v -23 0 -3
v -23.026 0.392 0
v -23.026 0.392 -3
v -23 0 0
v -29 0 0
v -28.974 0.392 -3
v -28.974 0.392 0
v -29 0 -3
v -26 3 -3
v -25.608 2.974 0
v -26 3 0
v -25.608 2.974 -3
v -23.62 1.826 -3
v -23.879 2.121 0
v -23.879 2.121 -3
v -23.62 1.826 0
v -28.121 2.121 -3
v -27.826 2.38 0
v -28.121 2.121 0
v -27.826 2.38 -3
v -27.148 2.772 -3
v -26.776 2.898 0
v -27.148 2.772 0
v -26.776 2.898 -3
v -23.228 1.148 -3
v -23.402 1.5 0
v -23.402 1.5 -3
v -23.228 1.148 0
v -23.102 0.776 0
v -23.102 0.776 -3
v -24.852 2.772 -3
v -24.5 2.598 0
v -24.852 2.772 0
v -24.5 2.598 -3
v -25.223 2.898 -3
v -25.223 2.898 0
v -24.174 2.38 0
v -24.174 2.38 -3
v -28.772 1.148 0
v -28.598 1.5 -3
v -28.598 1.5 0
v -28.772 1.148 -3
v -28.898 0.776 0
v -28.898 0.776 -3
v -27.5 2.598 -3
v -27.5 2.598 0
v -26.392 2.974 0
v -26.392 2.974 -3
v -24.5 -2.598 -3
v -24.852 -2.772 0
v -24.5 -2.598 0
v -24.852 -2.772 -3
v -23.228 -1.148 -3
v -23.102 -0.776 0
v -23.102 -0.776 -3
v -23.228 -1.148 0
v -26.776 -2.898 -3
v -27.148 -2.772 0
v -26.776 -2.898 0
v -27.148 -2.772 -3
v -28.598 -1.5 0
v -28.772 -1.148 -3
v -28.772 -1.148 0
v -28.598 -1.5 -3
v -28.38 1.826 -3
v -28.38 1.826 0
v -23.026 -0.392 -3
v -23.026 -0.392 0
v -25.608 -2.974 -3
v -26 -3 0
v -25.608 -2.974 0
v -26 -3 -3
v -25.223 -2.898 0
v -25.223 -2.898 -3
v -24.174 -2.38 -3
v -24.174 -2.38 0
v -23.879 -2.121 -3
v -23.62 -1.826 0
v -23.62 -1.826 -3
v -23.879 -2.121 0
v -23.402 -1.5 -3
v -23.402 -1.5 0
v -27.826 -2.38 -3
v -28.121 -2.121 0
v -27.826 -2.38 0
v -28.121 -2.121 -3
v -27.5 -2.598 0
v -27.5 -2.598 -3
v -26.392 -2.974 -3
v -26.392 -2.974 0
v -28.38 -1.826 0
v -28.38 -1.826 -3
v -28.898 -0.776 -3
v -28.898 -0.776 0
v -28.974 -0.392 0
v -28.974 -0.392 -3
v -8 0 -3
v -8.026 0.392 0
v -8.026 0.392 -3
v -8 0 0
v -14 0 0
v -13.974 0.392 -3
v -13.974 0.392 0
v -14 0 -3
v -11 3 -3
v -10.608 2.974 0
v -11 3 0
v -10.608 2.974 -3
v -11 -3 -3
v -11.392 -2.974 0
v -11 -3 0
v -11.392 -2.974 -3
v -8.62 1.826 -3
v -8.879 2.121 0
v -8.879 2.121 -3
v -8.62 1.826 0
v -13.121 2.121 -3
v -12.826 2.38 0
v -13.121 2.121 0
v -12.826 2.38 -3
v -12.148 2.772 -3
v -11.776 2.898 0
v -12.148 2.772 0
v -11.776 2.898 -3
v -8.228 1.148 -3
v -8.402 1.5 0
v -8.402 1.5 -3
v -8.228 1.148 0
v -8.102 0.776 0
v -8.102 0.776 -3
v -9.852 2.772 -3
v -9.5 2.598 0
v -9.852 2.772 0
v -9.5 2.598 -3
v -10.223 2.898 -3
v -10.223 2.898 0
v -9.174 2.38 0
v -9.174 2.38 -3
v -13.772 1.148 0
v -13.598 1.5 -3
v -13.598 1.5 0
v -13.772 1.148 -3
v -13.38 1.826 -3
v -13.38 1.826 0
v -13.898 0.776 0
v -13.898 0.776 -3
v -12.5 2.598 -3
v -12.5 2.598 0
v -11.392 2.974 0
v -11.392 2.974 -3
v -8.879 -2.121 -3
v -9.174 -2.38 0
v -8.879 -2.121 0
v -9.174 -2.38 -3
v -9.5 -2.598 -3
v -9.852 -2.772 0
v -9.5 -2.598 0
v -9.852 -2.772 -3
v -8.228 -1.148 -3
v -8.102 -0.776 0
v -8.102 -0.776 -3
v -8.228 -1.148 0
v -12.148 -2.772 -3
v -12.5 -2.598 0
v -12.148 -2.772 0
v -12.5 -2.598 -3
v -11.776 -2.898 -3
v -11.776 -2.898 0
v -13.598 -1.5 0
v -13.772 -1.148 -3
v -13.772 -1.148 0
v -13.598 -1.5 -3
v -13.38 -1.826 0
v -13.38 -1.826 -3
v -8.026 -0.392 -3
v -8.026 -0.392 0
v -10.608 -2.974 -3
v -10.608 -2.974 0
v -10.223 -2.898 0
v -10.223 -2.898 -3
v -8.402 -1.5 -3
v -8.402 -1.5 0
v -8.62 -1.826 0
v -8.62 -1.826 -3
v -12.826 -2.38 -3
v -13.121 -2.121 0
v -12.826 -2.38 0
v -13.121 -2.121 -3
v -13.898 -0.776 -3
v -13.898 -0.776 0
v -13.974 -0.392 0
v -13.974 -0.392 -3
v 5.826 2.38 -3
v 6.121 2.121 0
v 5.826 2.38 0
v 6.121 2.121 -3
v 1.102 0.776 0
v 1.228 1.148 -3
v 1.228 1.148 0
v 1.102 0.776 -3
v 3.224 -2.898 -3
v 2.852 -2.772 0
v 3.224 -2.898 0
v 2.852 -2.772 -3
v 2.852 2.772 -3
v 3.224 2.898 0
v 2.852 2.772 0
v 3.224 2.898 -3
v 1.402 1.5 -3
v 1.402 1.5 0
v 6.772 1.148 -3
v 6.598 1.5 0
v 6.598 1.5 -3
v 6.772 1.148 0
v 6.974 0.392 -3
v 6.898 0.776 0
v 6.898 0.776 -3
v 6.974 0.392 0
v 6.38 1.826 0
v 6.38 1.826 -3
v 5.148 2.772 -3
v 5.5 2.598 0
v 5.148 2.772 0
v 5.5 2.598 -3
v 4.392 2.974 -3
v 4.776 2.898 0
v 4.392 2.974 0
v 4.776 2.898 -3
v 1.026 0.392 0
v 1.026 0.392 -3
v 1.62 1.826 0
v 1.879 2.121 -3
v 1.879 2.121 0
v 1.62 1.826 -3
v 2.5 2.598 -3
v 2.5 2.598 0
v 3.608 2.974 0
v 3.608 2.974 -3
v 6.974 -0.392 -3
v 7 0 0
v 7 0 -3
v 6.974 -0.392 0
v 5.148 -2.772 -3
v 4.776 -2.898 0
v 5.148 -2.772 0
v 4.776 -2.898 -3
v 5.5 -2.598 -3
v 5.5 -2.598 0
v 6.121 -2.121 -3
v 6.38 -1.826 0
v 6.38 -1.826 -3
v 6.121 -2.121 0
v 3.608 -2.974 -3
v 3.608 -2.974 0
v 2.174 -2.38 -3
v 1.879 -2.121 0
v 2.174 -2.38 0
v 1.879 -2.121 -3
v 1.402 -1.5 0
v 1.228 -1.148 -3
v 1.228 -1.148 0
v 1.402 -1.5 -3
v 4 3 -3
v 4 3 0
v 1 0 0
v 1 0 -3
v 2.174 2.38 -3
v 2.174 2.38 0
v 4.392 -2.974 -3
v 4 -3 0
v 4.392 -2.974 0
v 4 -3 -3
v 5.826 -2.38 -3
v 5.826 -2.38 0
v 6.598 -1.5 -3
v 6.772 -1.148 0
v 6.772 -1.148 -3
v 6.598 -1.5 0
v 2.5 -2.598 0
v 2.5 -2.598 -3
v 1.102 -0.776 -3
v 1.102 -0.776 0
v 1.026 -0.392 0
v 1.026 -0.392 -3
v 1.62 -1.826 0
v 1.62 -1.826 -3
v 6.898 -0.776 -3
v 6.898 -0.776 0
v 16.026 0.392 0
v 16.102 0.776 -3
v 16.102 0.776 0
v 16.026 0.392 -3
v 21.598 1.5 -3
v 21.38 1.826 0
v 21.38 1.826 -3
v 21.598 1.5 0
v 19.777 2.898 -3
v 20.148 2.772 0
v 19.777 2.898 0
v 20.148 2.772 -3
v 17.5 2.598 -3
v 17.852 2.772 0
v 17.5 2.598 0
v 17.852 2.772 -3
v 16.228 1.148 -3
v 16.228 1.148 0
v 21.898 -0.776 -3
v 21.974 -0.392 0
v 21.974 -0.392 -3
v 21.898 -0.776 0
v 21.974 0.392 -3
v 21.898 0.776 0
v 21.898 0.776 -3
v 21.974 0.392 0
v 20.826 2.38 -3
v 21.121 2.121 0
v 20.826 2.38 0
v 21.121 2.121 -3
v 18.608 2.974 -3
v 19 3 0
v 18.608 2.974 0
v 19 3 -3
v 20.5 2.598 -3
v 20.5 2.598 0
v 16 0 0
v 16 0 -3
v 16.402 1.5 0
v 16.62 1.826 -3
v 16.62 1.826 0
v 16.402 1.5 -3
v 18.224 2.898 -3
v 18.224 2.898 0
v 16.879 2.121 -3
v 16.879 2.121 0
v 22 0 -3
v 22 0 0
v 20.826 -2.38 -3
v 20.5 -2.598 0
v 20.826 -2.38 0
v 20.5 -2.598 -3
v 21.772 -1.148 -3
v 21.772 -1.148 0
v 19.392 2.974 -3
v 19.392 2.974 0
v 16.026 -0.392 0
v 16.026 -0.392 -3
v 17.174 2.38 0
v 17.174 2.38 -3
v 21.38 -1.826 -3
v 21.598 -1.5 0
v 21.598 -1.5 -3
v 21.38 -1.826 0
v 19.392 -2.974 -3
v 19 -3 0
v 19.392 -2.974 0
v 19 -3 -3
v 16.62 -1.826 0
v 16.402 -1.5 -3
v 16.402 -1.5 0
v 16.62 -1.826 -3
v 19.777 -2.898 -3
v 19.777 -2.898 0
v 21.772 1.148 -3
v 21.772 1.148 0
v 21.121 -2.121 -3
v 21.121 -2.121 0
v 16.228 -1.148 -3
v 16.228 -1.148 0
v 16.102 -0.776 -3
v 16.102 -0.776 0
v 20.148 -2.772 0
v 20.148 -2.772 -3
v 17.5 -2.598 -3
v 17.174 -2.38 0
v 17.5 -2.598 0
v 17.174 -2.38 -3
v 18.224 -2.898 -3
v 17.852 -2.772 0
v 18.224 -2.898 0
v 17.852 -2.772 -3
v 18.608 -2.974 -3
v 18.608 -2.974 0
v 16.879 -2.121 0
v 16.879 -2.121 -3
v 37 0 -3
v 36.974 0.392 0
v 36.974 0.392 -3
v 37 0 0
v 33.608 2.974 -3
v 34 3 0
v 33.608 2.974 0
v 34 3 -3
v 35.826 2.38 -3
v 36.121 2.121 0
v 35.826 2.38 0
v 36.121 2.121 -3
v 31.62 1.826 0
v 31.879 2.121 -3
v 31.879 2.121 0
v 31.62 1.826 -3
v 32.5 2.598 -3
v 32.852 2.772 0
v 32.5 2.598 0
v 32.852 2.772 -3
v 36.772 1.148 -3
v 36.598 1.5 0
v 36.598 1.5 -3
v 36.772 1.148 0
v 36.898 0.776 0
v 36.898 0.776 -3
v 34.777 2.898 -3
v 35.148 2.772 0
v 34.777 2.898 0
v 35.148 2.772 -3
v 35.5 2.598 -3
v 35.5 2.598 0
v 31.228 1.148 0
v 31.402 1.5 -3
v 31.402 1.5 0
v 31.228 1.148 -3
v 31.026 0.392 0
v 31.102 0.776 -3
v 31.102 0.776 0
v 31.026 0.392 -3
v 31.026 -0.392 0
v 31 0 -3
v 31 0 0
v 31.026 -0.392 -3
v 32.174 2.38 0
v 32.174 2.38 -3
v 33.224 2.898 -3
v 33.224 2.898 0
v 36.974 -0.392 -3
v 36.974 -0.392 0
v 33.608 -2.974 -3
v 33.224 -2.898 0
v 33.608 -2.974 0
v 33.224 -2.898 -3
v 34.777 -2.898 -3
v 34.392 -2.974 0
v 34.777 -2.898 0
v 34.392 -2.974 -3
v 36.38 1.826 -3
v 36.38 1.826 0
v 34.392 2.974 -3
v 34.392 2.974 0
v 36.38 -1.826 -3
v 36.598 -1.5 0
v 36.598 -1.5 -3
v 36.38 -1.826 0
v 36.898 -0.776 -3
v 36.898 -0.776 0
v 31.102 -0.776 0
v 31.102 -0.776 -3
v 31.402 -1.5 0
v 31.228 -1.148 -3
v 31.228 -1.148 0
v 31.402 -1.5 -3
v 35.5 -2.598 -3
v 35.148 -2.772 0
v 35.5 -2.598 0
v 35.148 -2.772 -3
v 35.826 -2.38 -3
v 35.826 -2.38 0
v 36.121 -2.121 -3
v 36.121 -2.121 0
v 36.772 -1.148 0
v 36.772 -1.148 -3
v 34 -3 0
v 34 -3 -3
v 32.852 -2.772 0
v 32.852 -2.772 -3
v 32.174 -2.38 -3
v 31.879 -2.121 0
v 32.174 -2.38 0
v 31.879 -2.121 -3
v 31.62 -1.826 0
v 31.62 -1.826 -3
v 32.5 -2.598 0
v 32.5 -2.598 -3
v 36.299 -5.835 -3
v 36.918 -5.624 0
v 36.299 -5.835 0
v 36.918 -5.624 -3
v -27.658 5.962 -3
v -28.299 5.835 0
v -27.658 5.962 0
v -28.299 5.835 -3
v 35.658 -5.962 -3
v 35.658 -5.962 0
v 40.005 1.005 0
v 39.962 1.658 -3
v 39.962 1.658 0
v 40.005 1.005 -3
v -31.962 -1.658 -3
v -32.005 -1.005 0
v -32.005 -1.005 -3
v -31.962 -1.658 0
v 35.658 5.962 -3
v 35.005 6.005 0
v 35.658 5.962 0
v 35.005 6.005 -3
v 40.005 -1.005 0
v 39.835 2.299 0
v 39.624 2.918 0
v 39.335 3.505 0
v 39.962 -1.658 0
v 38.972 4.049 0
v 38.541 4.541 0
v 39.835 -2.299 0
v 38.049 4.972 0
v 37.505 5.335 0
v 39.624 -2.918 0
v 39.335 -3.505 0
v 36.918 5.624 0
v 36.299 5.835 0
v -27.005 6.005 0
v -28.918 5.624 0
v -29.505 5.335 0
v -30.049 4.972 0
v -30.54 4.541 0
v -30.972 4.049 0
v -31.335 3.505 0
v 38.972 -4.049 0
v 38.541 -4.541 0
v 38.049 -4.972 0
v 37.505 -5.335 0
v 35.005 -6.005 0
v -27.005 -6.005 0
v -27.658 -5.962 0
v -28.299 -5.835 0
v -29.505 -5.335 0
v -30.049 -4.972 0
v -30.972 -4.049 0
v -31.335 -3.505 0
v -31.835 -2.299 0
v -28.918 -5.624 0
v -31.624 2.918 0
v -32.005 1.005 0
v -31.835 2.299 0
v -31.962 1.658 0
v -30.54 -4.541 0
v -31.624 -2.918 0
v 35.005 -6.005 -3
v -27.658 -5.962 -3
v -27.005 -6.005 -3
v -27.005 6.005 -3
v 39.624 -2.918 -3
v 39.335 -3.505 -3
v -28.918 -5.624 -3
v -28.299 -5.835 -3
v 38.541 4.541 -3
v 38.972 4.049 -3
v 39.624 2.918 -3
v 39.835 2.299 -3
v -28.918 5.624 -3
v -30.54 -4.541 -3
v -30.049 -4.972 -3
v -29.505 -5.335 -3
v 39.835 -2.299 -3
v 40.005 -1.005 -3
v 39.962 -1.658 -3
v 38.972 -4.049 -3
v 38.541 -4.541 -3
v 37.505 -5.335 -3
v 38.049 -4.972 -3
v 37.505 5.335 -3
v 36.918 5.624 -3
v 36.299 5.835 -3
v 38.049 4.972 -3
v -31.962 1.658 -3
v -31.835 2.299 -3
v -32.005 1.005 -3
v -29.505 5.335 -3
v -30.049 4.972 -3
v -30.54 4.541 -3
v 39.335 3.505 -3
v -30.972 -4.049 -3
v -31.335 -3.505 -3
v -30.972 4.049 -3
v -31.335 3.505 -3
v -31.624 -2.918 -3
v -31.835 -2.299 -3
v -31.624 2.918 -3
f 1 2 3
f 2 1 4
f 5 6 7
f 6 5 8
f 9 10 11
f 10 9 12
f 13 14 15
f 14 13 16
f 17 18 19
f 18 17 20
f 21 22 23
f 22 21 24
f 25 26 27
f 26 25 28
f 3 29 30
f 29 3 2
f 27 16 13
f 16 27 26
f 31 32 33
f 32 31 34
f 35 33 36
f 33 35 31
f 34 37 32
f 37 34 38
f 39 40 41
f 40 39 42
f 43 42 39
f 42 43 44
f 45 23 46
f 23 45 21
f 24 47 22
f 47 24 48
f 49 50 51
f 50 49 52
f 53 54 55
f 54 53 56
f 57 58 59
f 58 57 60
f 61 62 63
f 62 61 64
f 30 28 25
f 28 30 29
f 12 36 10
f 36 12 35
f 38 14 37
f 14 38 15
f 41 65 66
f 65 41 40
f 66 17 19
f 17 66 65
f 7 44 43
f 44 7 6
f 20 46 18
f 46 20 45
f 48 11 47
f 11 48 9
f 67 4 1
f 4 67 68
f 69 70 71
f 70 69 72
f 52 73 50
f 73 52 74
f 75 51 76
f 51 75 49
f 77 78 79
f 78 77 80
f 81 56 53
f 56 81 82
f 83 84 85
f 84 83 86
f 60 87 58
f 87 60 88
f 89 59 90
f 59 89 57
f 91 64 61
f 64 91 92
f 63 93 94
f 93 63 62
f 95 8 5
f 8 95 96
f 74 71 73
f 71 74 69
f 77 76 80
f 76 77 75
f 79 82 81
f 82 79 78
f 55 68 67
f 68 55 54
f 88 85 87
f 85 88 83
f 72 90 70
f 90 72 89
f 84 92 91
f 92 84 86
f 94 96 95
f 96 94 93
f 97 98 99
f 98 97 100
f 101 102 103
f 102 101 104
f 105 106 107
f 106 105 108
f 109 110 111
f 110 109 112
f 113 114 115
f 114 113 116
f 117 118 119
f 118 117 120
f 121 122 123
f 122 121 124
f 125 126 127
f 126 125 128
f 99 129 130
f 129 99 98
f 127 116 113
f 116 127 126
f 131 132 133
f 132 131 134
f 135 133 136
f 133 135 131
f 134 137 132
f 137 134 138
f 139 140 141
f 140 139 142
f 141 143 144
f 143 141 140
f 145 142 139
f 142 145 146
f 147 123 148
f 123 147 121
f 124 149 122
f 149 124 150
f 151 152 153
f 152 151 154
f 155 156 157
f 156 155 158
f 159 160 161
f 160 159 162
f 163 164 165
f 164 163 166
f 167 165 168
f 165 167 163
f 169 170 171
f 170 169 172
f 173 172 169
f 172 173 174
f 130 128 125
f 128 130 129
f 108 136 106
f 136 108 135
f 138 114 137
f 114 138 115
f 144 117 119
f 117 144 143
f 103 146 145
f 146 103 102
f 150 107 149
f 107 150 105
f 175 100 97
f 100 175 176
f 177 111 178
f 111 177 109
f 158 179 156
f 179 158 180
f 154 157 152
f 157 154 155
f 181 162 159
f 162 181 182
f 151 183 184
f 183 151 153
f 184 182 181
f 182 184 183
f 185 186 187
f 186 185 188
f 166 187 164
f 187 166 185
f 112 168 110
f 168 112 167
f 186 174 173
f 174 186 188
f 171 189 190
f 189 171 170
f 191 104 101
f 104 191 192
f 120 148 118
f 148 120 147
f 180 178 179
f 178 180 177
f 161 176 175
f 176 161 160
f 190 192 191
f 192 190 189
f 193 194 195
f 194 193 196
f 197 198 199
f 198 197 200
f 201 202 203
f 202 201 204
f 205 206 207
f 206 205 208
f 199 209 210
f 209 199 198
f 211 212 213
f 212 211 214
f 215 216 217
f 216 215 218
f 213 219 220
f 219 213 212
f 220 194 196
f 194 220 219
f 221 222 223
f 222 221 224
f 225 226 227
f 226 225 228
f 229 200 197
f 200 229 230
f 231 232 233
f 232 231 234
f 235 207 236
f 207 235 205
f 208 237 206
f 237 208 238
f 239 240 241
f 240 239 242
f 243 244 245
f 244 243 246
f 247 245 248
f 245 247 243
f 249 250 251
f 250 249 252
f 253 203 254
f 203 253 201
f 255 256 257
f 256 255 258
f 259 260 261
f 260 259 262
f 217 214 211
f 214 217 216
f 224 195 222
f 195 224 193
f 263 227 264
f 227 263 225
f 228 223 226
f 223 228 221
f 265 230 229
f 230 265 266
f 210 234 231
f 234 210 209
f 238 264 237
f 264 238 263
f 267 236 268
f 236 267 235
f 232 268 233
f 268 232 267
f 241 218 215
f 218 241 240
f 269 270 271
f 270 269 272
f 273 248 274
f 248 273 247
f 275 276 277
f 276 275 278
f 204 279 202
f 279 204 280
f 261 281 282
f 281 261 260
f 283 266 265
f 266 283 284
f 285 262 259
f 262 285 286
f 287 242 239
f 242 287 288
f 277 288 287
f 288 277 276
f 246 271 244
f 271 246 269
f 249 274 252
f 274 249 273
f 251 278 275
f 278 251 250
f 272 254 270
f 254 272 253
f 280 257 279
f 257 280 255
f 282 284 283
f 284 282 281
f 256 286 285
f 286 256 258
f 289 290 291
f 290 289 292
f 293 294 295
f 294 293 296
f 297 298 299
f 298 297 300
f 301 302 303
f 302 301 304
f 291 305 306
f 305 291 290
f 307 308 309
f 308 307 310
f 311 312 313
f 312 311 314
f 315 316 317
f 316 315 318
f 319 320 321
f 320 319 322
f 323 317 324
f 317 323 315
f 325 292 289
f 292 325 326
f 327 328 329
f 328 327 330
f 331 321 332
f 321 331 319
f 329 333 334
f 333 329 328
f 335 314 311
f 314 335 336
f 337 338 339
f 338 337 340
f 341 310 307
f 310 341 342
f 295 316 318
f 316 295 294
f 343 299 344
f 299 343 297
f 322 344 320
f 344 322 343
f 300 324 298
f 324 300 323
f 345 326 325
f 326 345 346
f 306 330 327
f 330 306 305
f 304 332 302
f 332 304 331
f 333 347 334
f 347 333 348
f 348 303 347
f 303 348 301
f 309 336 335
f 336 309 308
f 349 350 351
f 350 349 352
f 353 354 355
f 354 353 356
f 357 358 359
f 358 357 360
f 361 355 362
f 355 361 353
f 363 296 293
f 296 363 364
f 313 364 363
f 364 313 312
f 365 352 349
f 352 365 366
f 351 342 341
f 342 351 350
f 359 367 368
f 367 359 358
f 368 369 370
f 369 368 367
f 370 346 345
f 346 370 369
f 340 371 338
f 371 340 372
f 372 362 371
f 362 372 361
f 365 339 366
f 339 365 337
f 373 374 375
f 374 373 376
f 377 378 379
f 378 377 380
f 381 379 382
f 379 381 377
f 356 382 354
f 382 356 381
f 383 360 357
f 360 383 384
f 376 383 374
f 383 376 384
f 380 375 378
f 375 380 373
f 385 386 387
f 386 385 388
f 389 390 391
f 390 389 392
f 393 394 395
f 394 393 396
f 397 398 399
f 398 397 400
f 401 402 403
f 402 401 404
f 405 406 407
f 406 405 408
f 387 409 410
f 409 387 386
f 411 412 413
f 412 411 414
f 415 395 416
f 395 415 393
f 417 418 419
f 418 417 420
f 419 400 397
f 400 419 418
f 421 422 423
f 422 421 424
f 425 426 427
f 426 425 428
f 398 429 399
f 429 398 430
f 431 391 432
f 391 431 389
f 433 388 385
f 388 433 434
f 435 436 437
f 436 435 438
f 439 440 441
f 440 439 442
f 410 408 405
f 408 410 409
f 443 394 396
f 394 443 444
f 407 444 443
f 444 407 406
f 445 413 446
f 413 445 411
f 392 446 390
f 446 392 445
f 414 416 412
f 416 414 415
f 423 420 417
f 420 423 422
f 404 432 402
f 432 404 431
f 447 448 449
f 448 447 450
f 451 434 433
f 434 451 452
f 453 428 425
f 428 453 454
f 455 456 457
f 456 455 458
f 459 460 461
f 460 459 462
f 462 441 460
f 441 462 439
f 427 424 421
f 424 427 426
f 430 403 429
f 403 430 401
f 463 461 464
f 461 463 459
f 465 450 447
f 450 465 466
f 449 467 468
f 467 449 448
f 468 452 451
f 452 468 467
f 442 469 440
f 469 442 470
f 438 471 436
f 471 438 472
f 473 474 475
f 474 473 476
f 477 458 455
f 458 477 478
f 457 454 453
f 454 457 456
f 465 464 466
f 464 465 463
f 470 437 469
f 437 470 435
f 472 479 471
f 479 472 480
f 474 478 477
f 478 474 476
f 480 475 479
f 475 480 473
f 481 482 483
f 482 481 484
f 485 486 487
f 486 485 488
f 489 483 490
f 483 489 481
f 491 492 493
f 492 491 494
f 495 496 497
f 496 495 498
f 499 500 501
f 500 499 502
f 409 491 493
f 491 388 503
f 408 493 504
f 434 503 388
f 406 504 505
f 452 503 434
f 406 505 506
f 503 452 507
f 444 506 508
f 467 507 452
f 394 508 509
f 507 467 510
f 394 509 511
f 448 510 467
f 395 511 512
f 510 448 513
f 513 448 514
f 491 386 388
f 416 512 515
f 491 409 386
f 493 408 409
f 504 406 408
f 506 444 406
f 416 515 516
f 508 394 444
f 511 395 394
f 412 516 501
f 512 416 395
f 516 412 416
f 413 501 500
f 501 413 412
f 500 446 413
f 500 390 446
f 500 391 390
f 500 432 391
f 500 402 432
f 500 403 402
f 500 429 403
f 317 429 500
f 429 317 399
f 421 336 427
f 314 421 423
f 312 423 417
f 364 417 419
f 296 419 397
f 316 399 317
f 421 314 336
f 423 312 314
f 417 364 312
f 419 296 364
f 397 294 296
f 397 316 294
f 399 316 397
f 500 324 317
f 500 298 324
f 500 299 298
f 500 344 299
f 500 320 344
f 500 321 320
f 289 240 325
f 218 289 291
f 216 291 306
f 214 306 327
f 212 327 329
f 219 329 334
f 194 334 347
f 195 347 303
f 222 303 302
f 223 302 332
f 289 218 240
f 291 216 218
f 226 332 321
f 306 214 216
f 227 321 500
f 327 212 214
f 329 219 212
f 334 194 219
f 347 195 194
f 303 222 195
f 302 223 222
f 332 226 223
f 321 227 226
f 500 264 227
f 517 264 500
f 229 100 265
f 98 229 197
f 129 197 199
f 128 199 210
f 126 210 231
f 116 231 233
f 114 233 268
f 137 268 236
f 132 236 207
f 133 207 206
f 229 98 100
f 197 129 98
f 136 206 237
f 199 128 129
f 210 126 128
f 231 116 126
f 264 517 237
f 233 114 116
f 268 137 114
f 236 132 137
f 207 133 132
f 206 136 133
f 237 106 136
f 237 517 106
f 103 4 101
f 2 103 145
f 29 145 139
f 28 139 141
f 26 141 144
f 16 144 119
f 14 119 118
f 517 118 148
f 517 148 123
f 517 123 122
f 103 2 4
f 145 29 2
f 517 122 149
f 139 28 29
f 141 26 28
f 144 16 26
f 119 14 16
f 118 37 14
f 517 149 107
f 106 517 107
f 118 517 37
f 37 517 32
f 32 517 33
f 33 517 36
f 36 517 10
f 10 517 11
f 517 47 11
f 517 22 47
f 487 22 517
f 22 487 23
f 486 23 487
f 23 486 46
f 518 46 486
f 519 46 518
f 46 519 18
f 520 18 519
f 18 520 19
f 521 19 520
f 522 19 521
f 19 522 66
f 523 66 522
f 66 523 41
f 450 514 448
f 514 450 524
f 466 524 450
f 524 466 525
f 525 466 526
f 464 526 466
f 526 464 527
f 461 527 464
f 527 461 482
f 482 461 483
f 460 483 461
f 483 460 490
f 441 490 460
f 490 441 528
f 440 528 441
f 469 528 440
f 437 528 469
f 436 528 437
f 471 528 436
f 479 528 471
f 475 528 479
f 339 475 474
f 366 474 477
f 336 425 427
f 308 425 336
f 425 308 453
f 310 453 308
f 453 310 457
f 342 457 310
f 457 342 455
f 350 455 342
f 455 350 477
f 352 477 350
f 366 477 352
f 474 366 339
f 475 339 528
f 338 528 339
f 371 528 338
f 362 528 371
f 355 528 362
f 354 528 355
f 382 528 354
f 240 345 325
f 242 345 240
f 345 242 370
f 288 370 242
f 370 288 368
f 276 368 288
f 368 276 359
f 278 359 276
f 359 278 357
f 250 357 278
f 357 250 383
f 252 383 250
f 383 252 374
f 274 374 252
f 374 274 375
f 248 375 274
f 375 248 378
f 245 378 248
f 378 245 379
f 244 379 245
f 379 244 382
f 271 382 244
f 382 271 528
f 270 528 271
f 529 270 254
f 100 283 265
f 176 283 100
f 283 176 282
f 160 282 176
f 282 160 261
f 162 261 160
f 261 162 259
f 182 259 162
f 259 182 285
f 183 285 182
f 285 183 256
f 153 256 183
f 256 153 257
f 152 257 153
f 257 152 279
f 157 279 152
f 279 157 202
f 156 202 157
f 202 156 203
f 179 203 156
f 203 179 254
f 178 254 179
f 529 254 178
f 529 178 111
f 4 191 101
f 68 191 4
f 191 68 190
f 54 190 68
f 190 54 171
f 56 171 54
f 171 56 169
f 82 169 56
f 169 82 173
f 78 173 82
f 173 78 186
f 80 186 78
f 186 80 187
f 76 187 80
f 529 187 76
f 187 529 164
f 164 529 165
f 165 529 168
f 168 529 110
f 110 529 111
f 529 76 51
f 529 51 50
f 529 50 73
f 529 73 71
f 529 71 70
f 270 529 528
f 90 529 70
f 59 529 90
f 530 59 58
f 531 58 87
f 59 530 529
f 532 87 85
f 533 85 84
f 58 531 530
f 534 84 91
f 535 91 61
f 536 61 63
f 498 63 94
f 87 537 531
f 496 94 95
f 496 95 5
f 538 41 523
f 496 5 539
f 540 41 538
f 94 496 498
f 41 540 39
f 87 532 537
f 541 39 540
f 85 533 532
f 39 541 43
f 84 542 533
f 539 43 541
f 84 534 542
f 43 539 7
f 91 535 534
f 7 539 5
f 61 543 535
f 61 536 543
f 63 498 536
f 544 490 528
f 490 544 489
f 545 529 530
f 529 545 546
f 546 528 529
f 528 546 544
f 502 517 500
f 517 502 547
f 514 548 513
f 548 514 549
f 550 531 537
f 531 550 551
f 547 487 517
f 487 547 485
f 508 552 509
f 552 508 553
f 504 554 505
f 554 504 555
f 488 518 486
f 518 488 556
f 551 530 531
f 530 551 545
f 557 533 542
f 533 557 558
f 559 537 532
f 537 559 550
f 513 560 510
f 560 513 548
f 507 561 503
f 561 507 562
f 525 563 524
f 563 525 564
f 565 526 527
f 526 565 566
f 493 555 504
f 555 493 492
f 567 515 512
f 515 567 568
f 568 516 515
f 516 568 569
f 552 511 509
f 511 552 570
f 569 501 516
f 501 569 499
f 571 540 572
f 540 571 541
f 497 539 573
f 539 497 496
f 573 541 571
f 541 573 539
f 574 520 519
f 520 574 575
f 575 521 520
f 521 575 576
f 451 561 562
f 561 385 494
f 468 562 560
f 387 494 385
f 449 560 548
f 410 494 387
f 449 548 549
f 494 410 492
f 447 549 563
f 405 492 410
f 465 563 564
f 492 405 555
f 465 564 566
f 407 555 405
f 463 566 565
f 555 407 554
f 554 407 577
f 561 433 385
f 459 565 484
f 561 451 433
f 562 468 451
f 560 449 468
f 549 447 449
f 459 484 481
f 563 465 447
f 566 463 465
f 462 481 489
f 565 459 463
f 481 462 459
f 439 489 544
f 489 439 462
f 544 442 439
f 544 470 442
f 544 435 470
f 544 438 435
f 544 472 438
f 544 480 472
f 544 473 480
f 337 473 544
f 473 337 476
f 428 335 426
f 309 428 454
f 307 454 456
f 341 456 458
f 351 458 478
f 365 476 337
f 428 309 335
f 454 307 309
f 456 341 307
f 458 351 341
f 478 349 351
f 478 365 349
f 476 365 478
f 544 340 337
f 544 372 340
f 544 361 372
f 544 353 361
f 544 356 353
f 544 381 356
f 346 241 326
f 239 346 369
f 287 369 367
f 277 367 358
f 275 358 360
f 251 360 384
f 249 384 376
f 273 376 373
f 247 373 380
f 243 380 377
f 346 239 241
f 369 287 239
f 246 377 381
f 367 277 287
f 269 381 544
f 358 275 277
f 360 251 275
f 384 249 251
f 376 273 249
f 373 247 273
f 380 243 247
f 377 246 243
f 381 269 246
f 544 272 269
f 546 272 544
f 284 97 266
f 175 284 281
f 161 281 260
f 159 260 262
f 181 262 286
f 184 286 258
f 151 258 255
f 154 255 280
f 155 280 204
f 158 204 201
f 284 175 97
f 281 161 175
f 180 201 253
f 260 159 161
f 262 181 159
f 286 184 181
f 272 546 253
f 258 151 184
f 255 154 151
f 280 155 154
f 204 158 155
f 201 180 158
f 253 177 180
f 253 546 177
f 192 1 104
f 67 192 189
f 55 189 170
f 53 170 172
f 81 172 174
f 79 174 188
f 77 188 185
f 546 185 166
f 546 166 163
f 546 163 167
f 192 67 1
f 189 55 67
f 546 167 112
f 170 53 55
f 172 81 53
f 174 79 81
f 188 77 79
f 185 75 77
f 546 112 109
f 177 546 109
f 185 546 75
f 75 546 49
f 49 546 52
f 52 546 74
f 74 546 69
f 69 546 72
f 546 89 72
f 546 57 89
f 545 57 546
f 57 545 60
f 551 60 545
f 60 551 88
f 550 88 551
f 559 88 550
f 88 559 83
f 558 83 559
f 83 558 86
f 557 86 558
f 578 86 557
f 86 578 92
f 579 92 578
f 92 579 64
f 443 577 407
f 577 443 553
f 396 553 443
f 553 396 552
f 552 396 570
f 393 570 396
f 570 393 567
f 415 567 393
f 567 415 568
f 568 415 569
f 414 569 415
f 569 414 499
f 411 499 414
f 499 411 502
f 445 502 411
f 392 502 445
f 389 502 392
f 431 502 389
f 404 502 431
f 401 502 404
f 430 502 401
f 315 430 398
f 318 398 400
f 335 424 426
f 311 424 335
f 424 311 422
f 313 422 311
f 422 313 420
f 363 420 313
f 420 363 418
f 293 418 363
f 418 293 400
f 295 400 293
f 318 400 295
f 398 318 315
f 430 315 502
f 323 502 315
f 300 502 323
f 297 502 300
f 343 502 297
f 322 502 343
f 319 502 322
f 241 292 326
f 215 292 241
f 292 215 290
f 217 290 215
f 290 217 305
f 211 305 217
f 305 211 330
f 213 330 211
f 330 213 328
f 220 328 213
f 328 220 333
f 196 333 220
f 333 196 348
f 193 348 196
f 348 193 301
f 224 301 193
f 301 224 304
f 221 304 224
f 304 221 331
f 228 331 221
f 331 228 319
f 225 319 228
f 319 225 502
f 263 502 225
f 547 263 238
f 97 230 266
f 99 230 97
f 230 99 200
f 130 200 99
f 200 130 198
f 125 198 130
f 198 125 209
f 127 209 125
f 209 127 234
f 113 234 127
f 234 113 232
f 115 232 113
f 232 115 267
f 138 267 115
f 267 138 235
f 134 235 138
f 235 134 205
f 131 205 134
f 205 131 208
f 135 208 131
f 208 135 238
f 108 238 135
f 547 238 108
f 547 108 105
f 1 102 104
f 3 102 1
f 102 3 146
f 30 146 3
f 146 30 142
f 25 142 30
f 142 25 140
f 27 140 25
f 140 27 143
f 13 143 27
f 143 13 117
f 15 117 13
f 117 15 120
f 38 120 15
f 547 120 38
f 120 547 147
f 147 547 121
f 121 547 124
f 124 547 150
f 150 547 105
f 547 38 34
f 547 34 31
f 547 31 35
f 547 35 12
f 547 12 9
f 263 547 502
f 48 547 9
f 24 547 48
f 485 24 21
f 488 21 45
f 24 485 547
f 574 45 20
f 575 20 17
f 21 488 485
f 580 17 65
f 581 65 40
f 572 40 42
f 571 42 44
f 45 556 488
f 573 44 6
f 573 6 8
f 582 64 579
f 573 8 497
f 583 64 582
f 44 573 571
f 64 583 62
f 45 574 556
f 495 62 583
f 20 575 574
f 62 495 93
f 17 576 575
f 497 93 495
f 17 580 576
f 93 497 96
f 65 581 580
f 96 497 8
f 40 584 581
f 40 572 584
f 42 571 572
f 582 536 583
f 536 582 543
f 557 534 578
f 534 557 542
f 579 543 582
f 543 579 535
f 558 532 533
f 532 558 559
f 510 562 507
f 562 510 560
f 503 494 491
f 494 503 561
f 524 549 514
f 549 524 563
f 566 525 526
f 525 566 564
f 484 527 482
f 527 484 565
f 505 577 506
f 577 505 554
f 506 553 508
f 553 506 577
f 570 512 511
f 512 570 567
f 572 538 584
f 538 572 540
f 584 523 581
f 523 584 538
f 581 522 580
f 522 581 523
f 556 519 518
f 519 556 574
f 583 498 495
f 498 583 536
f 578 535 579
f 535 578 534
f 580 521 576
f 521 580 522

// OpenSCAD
// Generated by SolidPython 1.1.3 on 2022-09-15 16:37:10
$fn = 48;


difference() {
	union() {
		translate(v = [4, 0, 0]) {
			difference() {
				union() {
					color(alpha = 1.0000000000, c = "Gold") {
						translate(v = [0, 0, 0]) {
							rotate(a = [0, 0, 0]) {
								translate(v = [0, 0, -3]) {
									linear_extrude(height = 3) {
										offset(r = 5) {
											square(center = true, size = [62.0100000000, 2.0100000000]);
										}
									}
								}
							}
						}
					}
				}
				union() {
					color(alpha = 1.0000000000, c = "Gold") {
						translate(v = [-30.0000000000, 0.0000000000, 0]) {
							rotate(a = [0, 0, 0]) {
								translate(v = [0, 0, -250]) {
									cylinder(h = 500, r = 3.0000000000);
								}
							}
						}
					}
					color(alpha = 1.0000000000, c = "Gold") {
						translate(v = [-15.0000000000, 0.0000000000, 0]) {
							rotate(a = [0, 0, 0]) {
								translate(v = [0, 0, -250]) {
									cylinder(h = 500, r = 3.0000000000);
								}
							}
						}
					}
					color(alpha = 1.0000000000, c = "Gold") {
						translate(v = [0.0000000000, 0.0000000000, 0]) {
							rotate(a = [0, 0, 0]) {
								translate(v = [0, 0, -250]) {
									cylinder(h = 500, r = 3.0000000000);
								}
							}
						}
					}
					color(alpha = 1.0000000000, c = "Gold") {
						translate(v = [15.0000000000, 0.0000000000, 0]) {
							rotate(a = [0, 0, 0]) {
								translate(v = [0, 0, -250]) {
									cylinder(h = 500, r = 3.0000000000);
								}
							}
						}
					}
					color(alpha = 1.0000000000, c = "Gold") {
						translate(v = [30.0000000000, 0.0000000000, 0]) {
							rotate(a = [0, 0, 0]) {
								translate(v = [0, 0, -250]) {
									cylinder(h = 500, r = 3.0000000000);
								}
							}
						}
					}
				}
			}
		}
	}
	union();
}
/***********************************************
*********      SolidPython code:      **********
************************************************
 
import subprocess

from solid.objects import *
from solid import scad_render_to_file, scad_render

import math

import os

##################################################################################################################################################
##################################################################################################################################################
##################################################################################################################################################
##################################################################################################################################################
######  DIMENSION STUFF
##################################################################################################################################################
##################################################################################################################################################
##################################################################################################################################################
##################################################################################################################################################


mode = "3DPR"
#mode = "LAZE"
#mode = "TURE"
#mode = ""


######  Countersunk
countersunkM = []
WIDTH = 0
DEPTH = 1
countersunkM1width = 0; countersunkM1depth = 0; countersunkM2width = 0; countersunkM2depth = 0
countersunkM3width = 0
countersunkM3depth = 0
countersunkM4width = 0
countersunkM4depth = 0
countersunkM5width = 0
countersunkM5depth = 0
countersunkM6width = 0
countersunkM6depth = 0

######  Holes
holeM = []
holeM1 = 0
holeM2 = 0
holeM3 = 0
holeM4 = 0
holeM5 = 0
holeM6 = 0

######  Nuts
nutM = []
NUTWIDTH = 0
NUTDEPTH = 1
nutM1width = 0
nutM1depth = 0
nutM2width = 0
nutM2depth = 0
nutM3width = 0
nutM3depth = 0
nutM4width = 0
nutM4depth = 0
nutM5width = 0
nutM5depth = 0
nutM6width = 0
nutM6depth = 0

######  OOEB
ooebPinWidth = 0
ooebPinWidthWide = 0


######  Colors
colDefault = "Gold"

colOOEBbase = colDefault

colLEDRed = "red"
colWire = "gray"
    ######  Resistor
colRes = list()
colResistor = "beige"

colResBlack = "black"
colRes.append(colResBlack)
colResBrown = "brown"
colRes.append(colResBrown)
colResRed = "red"
colRes.append(colResRed)
colResOrange = "orange"
colRes.append(colResOrange)
colResYellow = "yellow"
colRes.append(colResYellow)
colResGreen = "green"
colRes.append(colResGreen)
colResBlue = "blue"
colRes.append(colResBlue)
colResPurple = "purple"
colRes.append(colResPurple)
colResGray = "gray"
colRes.append(colResGray)
colResWhite = "white"
colRes.append(colResWhite)





def changeMode(m="3DPR"):
    #print("####################################################      CHANGING MODES TO: " + m)
    global mode
    mode = m
    ######  Countersunk
    global countersunkM, countersunkM1width, countersunkM1depth, countersunkM2width, countersunkM2depth, countersunkM3width, countersunkM3depth, countersunkM4width, countersunkM4depth, countersunkM5width, countersunkM5depth, countersunkM6width, countersunkM6depth
    countersunkM = []
    countersunkM.append([0,0])
    countersunkM1width = 0 if mode== "3DPR" else 0
    countersunkM1depth = 0 if mode== "3DPR" else 0
    countersunkM.append([countersunkM1width,countersunkM1depth])
    countersunkM2width = 0 if mode== "3DPR" else 0
    countersunkM2depth = 0 if mode== "3DPR" else 0
    countersunkM.append([countersunkM2width,countersunkM2depth])
    countersunkM3width = 5.5/2+0.6 if mode== "3DPR" else 5.5/2
    countersunkM3depth = 1.7 if mode== "3DPR" else 1.7
    countersunkM.append([countersunkM3width,countersunkM3depth])
    countersunkM4width = 0 if mode== "3DPR" else 0
    countersunkM4depth = 0 if mode== "3DPR" else 0
    countersunkM.append([countersunkM4width,countersunkM4depth])
    countersunkM5width = 0 if mode== "3DPR" else 0
    countersunkM5depth = 0 if mode== "3DPR" else 0
    countersunkM.append([countersunkM5width,countersunkM5depth])
    countersunkM6width = 0 if mode== "3DPR" else 0
    countersunkM6depth = 0 if mode== "3DPR" else 0
    countersunkM.append([countersunkM6width,countersunkM6depth])
    ######  Holes
    global holeM, holeM1, holeM2, holeM3, holeM4, holeM5, holeM6, holeM7, holeM8
    holeM = []
    holeM1 = 1.2/2 if mode== "3DPR" else 1/2
    holeM2 = 2.3/2 if mode== "3DPR" else 2/2
    holeM3 = 3.4/2 if mode== "3DPR" else 3/2
    holeM4 = 4.4/2 if mode== "3DPR" else 4/2
    holeM5 = 5.4/2 if mode== "3DPR" else 5/2
    holeM6 = 6.5/2 if mode== "3DPR" else 6/2
    holeM7 = 7.5/2 if mode== "3DPR" else 7/2
    holeM8 = 8.6/2 if mode== "3DPR" else 8/2
    holeM.append(0)
    holeM.append(holeM1)
    holeM.append(holeM2)
    holeM.append(holeM3)
    holeM.append(holeM4)
    holeM.append(holeM5)
    holeM.append(holeM6)
    holeM.append(holeM7)
    holeM.append(holeM8)
    #####  Nuts
    global nutM, nutM1width, nutM1depth, nutM2width, nutM2depth, nutM3width, nutM3depth, nutM4width, nutM4depth, nutM5width, nutM5depth, nutM6width, nutM6depth
    nutM = []
    nutM.append([0,0]) 
    #M1 Nut
    nutM1width = 0
    nutM1depth = 0
    nutM.append([nutM1width,nutM1depth])    
    #M2 Nut
    nutM2width = 0
    nutM2depth = 0
    nutM.append([nutM2width,nutM2depth])    
    #M3 Nut
    #nutM3width = 6.05 if mode== "3DPR" else 5.5
    nutM3width = 6.05 * 1.154 if mode== "3DPR" else 5.5 * 1.154
    nutM3depth = 2.5 if mode== "3DPR" else 2.5
    nutM.append([nutM3width,nutM3depth])    
    #M4 Nut
    nutM4width = 0
    nutM4depth = 0
    nutM.append([nutM4width,nutM4depth])    
    #M5 Nut
    nutM5width = 0
    nutM5depth = 0
    nutM.append([nutM5width,nutM5depth])    
    #M6 Nut
    nutM6width = 11 if mode== "3DPR" else 10
    nutM6depth = 5 if mode== "3DPR" else 5
    nutM.append([nutM6width,nutM6depth])    

    ######  OOEB
    global ooebPinWidth,  ooebPinWidthWide

    ooebPinWidth = 0.6
    if(mode=="3DPR" or mode=="LAZE"):
        ooebPinWidth = 0.6 + 0.6
    ooebPinWidthWide = 1.2
    if(mode=="3DPR" or mode=="LAZE"):
        ooebPinWidthWide = 1.2 + 0.6


changeMode()


""""    
holeM12D = s=="3DPR" ? 1.4/2 : 1.2/2;
holeM16D = s=="3DPR" ? 1.8/2 : 1.6/2;
holeM2 = s=="3DPR" ? 2.3/2 : 2/2;
holeM25D = s=="3DPR" ? 2.8/2 : 2.5/2;
holeM27D = s=="3DPR" ? 3.1/2 : 2.7/2;    
holeM3 = s=="3DPR" ? 3.4/2 : 3/2;
holeM35D = s=="3DPR" ? 3.9/2 : 35/2;
holeM4 = s=="3DPR" ? 4.4/2 : 4/2;
holeM5 = s=="3DPR" ? 5.4/2 : 5/2;
holeM6 = s=="3DPR" ? 6.5/2 : 6/2;
holeM6Minus = s=="3DPR" ? 5.8/2 : 5.9/2;
holeM7 = s=="3DPR" ? 7.5/2 : 7/2;
holeM8 = s=="3DPR" ? 8.6/2 : 8/2;
holeM9 = s=="3DPR" ? 9.6/2 : 9/2;
holeM10 = s=="3DPR" ? 10.6/2 : 10/2;
holeM11 = s=="3DPR" ? 11.6/2 : 11/2;
holeM12 = s=="3DPR" ? 12.6/2 : 12/2;
holeM13 = s=="3DPR" ? 13.6/2 : 13/2;
holeM14 = s=="3DPR" ? 14.6/2 : 14/2;
holeM15 = s=="3DPR" ? 15.6/2 : 15/2;
holeM16 = s=="3DPR" ? 16.6/2 : 16/2;
holeM17 = s=="3DPR" ? 17.6/2 : 17/2;
holeM18 = s=="3DPR" ? 18.6/2 : 18/2;
holeM19 = s=="3DPR" ? 19.6/2 : 19/2;
holeM20 = s=="3DPR" ? 20.6/2 : 20/2;
"""

##################################################################################################################################################
##################################################################################################################################################
##################################################################################################################################################
##################################################################################################################################################
######  REGULAR STUFF
##################################################################################################################################################
##################################################################################################################################################
##################################################################################################################################################
##################################################################################################################################################


def setMode(mode="3DPR"):
    changeMode(mode)

def getMode():
    return mode



def saveToScad(fileName, parts):
    dir =  os.path.dirname(os.path.abspath(fileName))
    Path(dir).mkdir(parents=True, exist_ok=True)
    file_out = scad_render_to_file(parts, fileName, file_header=f'$fn = 48;')


def saveToDxf(fileIn, fileOut=""):
    if fileOut == "":
        fileOut = fileIn.replace(".scad",".dxf")
    saveToFile(fileIn, fileOut)
    
def saveToPng(fileIn, fileOut="",extra="--render"):
    if fileOut == "":
        fileOut = fileIn.replace(".scad",".png")
    saveToFile(fileIn, fileOut)

def saveToStl(fileIn, fileOut=""):
    if fileOut == "":
        fileOut = fileIn.replace(".scad",".stl")
    saveToFile(fileIn, fileOut)
    
def saveToSvg(fileIn, fileOut=""):
    if fileOut == "":
        fileOut = fileIn.replace(".scad",".svg")
    saveToFile(fileIn, fileOut)

def saveToFile(fileIn, fileOut,extra=""):
    extra = extra + " --colorscheme Tomorrow"

    launchStr = 'openscad -o "' + fileOut + '"' + extra + ' "' + fileIn + '"'
    if ".png" in fileOut:
        launchStr = launchStr + " --render"
    print("            saveToFile launch string: " + launchStr)
    subprocess.run(launchStr)
    x=0



def insert(item,pos=[None,None,None],x=0,y=0,z=0,ex=0,size=[None,None,None],length=0,rot=[None,None,None],rotX=0,rotY=0,rotZ=0,width=0,height=0,depth=100,rad=0,rad2=0,color=colDefault,alpha=1,OOwidth=0,OOheight=0,holes=True,negative=True, name="",m=""):
    return OPSCInsert(item,pos,x,y,z,ex,size,length,rot,rotX,rotY,rotZ,width,height,depth,rad,rad2,color,alpha,OOwidth,OOheight,holes,negative,name,m=m)


def OPSCInsert(item,pos=[None,None,None],x=0,y=0,z=0,ex=0,size=[None,None,None],length=0,rot=[None,None,None],rotX=0,rotY=0,rotZ=0,width=0,height=0,depth=100,rad=0,rad2=0,col=colDefault,alpha=1,OOwidth=0,OOheight=0,holes=True,negative=True, name="",m=""):
    
    """
        color(color,alpha){
            translate([x,y,z]){
                    rotate([rotX,rotY,rotZ]){
    """
    returnValue = ""

    #print(pos)

    if pos[0] != None:
        x=pos[0]
        y=pos[1]
        z=pos[2]
    if rot[0] != None:
        rotX=rot[0]
        rotY=rot[1]
        rotZ=rot[2]
    
    returnValue = color(col)(translate((x,y,z))(
                            rotate((rotX,rotY,rotZ))(
                                OPSCInsertIf(item,pos,x,y,z,ex,size,length,rot,rotX,rotY,rotZ,width,height,depth,rad,rad2,col,alpha,OOwidth,OOheight,holes,negative,name,m=m)
                            )
                        ))
                
    

    return returnValue

def OPSCInsertIf(item,pos=[None,None,None],x=0,y=0,z=0,ex=0,size=[None,None,None],length=0,rot=[None,None,None],rotX=0,rotY=0,rotZ=0,width=0,height=0,depth=100,rad=0,rad2=0,color=colDefault,alpha=1,OOwidth=0,OOheight=0,holes=True,negative=True, name="",m=""):
    returnValue = cube([10,10,10])

    if size[0] != None:
        width=size[0]
        height=size[1]
        depth=size[2]

    #print("    OPSCInsert item:" + str(item) + " at:[" + str(x) + "," + str(y) + "," + str(z) + "] size: [" + str(width) + "," + str(height) + "," + str(depth) + "]")

    if(item=="cube"):
        returnValue =  translate([0,0,-depth/2])(cube([width,height,depth],center=True).set_modifier(m))
    elif(item=="cylinder"):        
        returnValue = translate([0,0,-depth/2])(cylinder(r=rad,h=depth,center=True).set_modifier(m))
    elif(item=="sphere"):        
        returnValue = translate([0,0,-rad])(sphere(r=rad).set_modifier(m))
    elif(item=="plane"):
        if depth == 100:
            returnValue = insert("cube",size=[1000,1000,0.1],color=color).set_modifier(m)            
        else:
            returnValue = insert("cube",size=[1000,1000,depth],color=color).set_modifier(m)                        
    elif(item=="cubeRounded"):
        if(rad == 0):
                            rad = 5
        returnValue =  translate([0,0,-depth])(
                        linear_extrude(height=depth)(                        
                            offset(r=rad)(
                                square((width-rad*2+.01,height-rad*2+.01),center=True).set_modifier(m)
                                )
                            )
        )
    ######  Countersunk
    elif(item == "countersunkM1" or item == "csM1" ):
        returnValue = OSPCgetCountersunk(rad=1,m=m)
    elif(item == "countersunkM2" or item == "csM2" ):
        returnValue = OSPCgetCountersunk(rad=2,m=m)
    elif(item == "countersunkM3" or item == "csM3" ):
        returnValue = OSPCgetCountersunk(rad=3,m=m)
    elif(item == "countersunkM4" or item == "csM4" ):
        returnValue = OSPCgetCountersunk(rad=4,m=m)
    elif(item == "countersunkM5" or item == "csM5" ):
        returnValue = OSPCgetCountersunk(rad=5,m=m)
    elif(item == "countersunkM6" or item == "csM6" ):
        returnValue = OSPCgetCountersunk(rad=6,m=m)
    elif(item == "countersunk" or item == "cs"):
        returnValue = OSPCgetCountersunk(rad=rad,m=m)


    ######  Holes    
    elif(item == "holeM1"):
        returnValue = OSPCgetHole(rad=1,m=m)
    elif(item == "holeM2"):
        returnValue = OSPCgetHole(rad=2,m=m)
    elif(item == "holeM3"):
        returnValue = OSPCgetHole(rad=3,m=m)
    elif(item == "holeM4"):
        returnValue = OSPCgetHole(rad=4,m=m)
    elif(item == "holeM5"):
        returnValue = OSPCgetHole(rad=5,m=m)
    elif(item == "holeM6"):
        returnValue = OSPCgetHole(rad=6,m=m)
    elif(item == "holeM7"):
        returnValue = OSPCgetHole(rad=7,m=m)
    elif(item == "holeM8"):
        returnValue = OSPCgetHole(rad=8,m=m)
    elif(item == "hole"):
        returnValue = OSPCgetHole(rad=rad,m=m)

    ######  Nuts
    elif(item == "nutM1"):
        returnValue = OSPCgetNut(rad=1,depth=depth,m=m)
    elif(item == "nutM2"):
        returnValue = OSPCgetNut(rad=2,depth=depth,m=m)
    elif(item == "nutM3"):
        returnValue = OSPCgetNut(rad=3,depth=depth,m=m)
    elif(item == "nutM4"):
        returnValue = OSPCgetNut(rad=4,depth=depth,m=m)
    elif(item == "nutM5"):
        returnValue = OSPCgetNut(rad=5,depth=depth,m=m)
    elif(item == "nutM6"):
        returnValue = OSPCgetNut(rad=6,depth=depth,m=m)
    elif(item == "nut"):
        returnValue = OSPCgetNut(rad=rad,depth=depth,m=m)
    return returnValue

                

def OSPCgetHole(rad,m=""):
    return translate([0,0,-250])(cylinder(r=holeM[rad],h=500).set_modifier(m))

def OSPCgetNut(rad,depth,m=""):
    depth = nutM[rad][NUTDEPTH] if depth==100 else depth
    returnValue = OPSChexagon(nutM[rad][NUTWIDTH],depth=depth,m=m)
    return returnValue

def OSPCgetCountersunk(rad,m=""):
    depth=countersunkM[rad][DEPTH]
    returnValue = translate([0,0,-depth])(cylinder(h=depth,r2=countersunkM[rad][WIDTH],r1=holeM[rad])).set_modifier(m)
    return returnValue

def OPSChexagon(width,depth,m=""):
    angles = []
    for a in range(0,6):
        angles.append((a*360/6)+30)
    points = []
    for angle in angles:
        x = math.cos((math.pi/180)*angle)*(width/2)
        y = math.sin((math.pi/180)*angle)*(width/2)
        points.append([x,y])

        rv = polygon(points)
        rv = linear_extrude(height=depth)(rv)
        rv = translate([0,0,-depth])(rv)
        rv = rv.set_modifier(m)

    return rv

def OPSChexagonOld(width,depth,m=""):
    cutter = item()
    wid=width*2
    cutter.addPos(insert("cube",pos=[wid/2+width/2,0,0],size=[wid,wid,depth]))
    cutter.addPos(insert("cube",pos=[-wid/2-width/2,0,0],size=[wid,wid,depth]))

    cut = cutter.getPart()
    #print(depth)
    returnValue = difference()(
        translate([0,0,-depth/2])(cube([wid,wid,depth],center=True)),
        cut,
        rotate([0,0,60])(cut),
        rotate([0,0,-60])(cut)
    ).set_modifier(m)

    return returnValue

class item:

    def __init__(self):
        self.posItems=list()
        self.negItems=list()

    def isEmpty(self):        
        testString = scad_render(self.getPart())
        #print("test String length: " + str(len(testString)))
        returnValue = False
        if len(testString) == 270:            
            returnValue = True
        return returnValue

    def addPos(self,part):
        self.posItems.append(part)
    def addNeg(self,part):
        self.negItems.append(part)

    def getPart(self):
        returnValue = difference()(
            union()(self.posItems),
            union()(self.negItems)
        )
        return returnValue

    def getLaser(self,start=0,layers=1,thickness=-3,tileDif=200):
        rv= []

        for x in range(layers):
            rv.append(translate([0,x*tileDif,0])(
                    projection()(
                        intersection()(
                            insert("plane",z=start+x*thickness),
                            self.getPart()
                        )
                    )
            )
            )
        return union()(rv)

    def getSplit(self,start=0,depth=6,tileDif=200):
        rv= []

        rv.append(translate([0,0,0])(
            intersection()(
                insert("cube",size=[100,100,depth],z=start),
                self.getPart()
            )
        )
        )

        rv.append(translate([0,0,depth])(rotate([180,0,0])(translate([0,tileDif,depth])(
            intersection()(
                insert("cube",size=[100,100,depth],z=start-depth),
                self.getPart()
            )
        )
        )
        )
        )        
        return union()(rv)


 
 
************************************************/
